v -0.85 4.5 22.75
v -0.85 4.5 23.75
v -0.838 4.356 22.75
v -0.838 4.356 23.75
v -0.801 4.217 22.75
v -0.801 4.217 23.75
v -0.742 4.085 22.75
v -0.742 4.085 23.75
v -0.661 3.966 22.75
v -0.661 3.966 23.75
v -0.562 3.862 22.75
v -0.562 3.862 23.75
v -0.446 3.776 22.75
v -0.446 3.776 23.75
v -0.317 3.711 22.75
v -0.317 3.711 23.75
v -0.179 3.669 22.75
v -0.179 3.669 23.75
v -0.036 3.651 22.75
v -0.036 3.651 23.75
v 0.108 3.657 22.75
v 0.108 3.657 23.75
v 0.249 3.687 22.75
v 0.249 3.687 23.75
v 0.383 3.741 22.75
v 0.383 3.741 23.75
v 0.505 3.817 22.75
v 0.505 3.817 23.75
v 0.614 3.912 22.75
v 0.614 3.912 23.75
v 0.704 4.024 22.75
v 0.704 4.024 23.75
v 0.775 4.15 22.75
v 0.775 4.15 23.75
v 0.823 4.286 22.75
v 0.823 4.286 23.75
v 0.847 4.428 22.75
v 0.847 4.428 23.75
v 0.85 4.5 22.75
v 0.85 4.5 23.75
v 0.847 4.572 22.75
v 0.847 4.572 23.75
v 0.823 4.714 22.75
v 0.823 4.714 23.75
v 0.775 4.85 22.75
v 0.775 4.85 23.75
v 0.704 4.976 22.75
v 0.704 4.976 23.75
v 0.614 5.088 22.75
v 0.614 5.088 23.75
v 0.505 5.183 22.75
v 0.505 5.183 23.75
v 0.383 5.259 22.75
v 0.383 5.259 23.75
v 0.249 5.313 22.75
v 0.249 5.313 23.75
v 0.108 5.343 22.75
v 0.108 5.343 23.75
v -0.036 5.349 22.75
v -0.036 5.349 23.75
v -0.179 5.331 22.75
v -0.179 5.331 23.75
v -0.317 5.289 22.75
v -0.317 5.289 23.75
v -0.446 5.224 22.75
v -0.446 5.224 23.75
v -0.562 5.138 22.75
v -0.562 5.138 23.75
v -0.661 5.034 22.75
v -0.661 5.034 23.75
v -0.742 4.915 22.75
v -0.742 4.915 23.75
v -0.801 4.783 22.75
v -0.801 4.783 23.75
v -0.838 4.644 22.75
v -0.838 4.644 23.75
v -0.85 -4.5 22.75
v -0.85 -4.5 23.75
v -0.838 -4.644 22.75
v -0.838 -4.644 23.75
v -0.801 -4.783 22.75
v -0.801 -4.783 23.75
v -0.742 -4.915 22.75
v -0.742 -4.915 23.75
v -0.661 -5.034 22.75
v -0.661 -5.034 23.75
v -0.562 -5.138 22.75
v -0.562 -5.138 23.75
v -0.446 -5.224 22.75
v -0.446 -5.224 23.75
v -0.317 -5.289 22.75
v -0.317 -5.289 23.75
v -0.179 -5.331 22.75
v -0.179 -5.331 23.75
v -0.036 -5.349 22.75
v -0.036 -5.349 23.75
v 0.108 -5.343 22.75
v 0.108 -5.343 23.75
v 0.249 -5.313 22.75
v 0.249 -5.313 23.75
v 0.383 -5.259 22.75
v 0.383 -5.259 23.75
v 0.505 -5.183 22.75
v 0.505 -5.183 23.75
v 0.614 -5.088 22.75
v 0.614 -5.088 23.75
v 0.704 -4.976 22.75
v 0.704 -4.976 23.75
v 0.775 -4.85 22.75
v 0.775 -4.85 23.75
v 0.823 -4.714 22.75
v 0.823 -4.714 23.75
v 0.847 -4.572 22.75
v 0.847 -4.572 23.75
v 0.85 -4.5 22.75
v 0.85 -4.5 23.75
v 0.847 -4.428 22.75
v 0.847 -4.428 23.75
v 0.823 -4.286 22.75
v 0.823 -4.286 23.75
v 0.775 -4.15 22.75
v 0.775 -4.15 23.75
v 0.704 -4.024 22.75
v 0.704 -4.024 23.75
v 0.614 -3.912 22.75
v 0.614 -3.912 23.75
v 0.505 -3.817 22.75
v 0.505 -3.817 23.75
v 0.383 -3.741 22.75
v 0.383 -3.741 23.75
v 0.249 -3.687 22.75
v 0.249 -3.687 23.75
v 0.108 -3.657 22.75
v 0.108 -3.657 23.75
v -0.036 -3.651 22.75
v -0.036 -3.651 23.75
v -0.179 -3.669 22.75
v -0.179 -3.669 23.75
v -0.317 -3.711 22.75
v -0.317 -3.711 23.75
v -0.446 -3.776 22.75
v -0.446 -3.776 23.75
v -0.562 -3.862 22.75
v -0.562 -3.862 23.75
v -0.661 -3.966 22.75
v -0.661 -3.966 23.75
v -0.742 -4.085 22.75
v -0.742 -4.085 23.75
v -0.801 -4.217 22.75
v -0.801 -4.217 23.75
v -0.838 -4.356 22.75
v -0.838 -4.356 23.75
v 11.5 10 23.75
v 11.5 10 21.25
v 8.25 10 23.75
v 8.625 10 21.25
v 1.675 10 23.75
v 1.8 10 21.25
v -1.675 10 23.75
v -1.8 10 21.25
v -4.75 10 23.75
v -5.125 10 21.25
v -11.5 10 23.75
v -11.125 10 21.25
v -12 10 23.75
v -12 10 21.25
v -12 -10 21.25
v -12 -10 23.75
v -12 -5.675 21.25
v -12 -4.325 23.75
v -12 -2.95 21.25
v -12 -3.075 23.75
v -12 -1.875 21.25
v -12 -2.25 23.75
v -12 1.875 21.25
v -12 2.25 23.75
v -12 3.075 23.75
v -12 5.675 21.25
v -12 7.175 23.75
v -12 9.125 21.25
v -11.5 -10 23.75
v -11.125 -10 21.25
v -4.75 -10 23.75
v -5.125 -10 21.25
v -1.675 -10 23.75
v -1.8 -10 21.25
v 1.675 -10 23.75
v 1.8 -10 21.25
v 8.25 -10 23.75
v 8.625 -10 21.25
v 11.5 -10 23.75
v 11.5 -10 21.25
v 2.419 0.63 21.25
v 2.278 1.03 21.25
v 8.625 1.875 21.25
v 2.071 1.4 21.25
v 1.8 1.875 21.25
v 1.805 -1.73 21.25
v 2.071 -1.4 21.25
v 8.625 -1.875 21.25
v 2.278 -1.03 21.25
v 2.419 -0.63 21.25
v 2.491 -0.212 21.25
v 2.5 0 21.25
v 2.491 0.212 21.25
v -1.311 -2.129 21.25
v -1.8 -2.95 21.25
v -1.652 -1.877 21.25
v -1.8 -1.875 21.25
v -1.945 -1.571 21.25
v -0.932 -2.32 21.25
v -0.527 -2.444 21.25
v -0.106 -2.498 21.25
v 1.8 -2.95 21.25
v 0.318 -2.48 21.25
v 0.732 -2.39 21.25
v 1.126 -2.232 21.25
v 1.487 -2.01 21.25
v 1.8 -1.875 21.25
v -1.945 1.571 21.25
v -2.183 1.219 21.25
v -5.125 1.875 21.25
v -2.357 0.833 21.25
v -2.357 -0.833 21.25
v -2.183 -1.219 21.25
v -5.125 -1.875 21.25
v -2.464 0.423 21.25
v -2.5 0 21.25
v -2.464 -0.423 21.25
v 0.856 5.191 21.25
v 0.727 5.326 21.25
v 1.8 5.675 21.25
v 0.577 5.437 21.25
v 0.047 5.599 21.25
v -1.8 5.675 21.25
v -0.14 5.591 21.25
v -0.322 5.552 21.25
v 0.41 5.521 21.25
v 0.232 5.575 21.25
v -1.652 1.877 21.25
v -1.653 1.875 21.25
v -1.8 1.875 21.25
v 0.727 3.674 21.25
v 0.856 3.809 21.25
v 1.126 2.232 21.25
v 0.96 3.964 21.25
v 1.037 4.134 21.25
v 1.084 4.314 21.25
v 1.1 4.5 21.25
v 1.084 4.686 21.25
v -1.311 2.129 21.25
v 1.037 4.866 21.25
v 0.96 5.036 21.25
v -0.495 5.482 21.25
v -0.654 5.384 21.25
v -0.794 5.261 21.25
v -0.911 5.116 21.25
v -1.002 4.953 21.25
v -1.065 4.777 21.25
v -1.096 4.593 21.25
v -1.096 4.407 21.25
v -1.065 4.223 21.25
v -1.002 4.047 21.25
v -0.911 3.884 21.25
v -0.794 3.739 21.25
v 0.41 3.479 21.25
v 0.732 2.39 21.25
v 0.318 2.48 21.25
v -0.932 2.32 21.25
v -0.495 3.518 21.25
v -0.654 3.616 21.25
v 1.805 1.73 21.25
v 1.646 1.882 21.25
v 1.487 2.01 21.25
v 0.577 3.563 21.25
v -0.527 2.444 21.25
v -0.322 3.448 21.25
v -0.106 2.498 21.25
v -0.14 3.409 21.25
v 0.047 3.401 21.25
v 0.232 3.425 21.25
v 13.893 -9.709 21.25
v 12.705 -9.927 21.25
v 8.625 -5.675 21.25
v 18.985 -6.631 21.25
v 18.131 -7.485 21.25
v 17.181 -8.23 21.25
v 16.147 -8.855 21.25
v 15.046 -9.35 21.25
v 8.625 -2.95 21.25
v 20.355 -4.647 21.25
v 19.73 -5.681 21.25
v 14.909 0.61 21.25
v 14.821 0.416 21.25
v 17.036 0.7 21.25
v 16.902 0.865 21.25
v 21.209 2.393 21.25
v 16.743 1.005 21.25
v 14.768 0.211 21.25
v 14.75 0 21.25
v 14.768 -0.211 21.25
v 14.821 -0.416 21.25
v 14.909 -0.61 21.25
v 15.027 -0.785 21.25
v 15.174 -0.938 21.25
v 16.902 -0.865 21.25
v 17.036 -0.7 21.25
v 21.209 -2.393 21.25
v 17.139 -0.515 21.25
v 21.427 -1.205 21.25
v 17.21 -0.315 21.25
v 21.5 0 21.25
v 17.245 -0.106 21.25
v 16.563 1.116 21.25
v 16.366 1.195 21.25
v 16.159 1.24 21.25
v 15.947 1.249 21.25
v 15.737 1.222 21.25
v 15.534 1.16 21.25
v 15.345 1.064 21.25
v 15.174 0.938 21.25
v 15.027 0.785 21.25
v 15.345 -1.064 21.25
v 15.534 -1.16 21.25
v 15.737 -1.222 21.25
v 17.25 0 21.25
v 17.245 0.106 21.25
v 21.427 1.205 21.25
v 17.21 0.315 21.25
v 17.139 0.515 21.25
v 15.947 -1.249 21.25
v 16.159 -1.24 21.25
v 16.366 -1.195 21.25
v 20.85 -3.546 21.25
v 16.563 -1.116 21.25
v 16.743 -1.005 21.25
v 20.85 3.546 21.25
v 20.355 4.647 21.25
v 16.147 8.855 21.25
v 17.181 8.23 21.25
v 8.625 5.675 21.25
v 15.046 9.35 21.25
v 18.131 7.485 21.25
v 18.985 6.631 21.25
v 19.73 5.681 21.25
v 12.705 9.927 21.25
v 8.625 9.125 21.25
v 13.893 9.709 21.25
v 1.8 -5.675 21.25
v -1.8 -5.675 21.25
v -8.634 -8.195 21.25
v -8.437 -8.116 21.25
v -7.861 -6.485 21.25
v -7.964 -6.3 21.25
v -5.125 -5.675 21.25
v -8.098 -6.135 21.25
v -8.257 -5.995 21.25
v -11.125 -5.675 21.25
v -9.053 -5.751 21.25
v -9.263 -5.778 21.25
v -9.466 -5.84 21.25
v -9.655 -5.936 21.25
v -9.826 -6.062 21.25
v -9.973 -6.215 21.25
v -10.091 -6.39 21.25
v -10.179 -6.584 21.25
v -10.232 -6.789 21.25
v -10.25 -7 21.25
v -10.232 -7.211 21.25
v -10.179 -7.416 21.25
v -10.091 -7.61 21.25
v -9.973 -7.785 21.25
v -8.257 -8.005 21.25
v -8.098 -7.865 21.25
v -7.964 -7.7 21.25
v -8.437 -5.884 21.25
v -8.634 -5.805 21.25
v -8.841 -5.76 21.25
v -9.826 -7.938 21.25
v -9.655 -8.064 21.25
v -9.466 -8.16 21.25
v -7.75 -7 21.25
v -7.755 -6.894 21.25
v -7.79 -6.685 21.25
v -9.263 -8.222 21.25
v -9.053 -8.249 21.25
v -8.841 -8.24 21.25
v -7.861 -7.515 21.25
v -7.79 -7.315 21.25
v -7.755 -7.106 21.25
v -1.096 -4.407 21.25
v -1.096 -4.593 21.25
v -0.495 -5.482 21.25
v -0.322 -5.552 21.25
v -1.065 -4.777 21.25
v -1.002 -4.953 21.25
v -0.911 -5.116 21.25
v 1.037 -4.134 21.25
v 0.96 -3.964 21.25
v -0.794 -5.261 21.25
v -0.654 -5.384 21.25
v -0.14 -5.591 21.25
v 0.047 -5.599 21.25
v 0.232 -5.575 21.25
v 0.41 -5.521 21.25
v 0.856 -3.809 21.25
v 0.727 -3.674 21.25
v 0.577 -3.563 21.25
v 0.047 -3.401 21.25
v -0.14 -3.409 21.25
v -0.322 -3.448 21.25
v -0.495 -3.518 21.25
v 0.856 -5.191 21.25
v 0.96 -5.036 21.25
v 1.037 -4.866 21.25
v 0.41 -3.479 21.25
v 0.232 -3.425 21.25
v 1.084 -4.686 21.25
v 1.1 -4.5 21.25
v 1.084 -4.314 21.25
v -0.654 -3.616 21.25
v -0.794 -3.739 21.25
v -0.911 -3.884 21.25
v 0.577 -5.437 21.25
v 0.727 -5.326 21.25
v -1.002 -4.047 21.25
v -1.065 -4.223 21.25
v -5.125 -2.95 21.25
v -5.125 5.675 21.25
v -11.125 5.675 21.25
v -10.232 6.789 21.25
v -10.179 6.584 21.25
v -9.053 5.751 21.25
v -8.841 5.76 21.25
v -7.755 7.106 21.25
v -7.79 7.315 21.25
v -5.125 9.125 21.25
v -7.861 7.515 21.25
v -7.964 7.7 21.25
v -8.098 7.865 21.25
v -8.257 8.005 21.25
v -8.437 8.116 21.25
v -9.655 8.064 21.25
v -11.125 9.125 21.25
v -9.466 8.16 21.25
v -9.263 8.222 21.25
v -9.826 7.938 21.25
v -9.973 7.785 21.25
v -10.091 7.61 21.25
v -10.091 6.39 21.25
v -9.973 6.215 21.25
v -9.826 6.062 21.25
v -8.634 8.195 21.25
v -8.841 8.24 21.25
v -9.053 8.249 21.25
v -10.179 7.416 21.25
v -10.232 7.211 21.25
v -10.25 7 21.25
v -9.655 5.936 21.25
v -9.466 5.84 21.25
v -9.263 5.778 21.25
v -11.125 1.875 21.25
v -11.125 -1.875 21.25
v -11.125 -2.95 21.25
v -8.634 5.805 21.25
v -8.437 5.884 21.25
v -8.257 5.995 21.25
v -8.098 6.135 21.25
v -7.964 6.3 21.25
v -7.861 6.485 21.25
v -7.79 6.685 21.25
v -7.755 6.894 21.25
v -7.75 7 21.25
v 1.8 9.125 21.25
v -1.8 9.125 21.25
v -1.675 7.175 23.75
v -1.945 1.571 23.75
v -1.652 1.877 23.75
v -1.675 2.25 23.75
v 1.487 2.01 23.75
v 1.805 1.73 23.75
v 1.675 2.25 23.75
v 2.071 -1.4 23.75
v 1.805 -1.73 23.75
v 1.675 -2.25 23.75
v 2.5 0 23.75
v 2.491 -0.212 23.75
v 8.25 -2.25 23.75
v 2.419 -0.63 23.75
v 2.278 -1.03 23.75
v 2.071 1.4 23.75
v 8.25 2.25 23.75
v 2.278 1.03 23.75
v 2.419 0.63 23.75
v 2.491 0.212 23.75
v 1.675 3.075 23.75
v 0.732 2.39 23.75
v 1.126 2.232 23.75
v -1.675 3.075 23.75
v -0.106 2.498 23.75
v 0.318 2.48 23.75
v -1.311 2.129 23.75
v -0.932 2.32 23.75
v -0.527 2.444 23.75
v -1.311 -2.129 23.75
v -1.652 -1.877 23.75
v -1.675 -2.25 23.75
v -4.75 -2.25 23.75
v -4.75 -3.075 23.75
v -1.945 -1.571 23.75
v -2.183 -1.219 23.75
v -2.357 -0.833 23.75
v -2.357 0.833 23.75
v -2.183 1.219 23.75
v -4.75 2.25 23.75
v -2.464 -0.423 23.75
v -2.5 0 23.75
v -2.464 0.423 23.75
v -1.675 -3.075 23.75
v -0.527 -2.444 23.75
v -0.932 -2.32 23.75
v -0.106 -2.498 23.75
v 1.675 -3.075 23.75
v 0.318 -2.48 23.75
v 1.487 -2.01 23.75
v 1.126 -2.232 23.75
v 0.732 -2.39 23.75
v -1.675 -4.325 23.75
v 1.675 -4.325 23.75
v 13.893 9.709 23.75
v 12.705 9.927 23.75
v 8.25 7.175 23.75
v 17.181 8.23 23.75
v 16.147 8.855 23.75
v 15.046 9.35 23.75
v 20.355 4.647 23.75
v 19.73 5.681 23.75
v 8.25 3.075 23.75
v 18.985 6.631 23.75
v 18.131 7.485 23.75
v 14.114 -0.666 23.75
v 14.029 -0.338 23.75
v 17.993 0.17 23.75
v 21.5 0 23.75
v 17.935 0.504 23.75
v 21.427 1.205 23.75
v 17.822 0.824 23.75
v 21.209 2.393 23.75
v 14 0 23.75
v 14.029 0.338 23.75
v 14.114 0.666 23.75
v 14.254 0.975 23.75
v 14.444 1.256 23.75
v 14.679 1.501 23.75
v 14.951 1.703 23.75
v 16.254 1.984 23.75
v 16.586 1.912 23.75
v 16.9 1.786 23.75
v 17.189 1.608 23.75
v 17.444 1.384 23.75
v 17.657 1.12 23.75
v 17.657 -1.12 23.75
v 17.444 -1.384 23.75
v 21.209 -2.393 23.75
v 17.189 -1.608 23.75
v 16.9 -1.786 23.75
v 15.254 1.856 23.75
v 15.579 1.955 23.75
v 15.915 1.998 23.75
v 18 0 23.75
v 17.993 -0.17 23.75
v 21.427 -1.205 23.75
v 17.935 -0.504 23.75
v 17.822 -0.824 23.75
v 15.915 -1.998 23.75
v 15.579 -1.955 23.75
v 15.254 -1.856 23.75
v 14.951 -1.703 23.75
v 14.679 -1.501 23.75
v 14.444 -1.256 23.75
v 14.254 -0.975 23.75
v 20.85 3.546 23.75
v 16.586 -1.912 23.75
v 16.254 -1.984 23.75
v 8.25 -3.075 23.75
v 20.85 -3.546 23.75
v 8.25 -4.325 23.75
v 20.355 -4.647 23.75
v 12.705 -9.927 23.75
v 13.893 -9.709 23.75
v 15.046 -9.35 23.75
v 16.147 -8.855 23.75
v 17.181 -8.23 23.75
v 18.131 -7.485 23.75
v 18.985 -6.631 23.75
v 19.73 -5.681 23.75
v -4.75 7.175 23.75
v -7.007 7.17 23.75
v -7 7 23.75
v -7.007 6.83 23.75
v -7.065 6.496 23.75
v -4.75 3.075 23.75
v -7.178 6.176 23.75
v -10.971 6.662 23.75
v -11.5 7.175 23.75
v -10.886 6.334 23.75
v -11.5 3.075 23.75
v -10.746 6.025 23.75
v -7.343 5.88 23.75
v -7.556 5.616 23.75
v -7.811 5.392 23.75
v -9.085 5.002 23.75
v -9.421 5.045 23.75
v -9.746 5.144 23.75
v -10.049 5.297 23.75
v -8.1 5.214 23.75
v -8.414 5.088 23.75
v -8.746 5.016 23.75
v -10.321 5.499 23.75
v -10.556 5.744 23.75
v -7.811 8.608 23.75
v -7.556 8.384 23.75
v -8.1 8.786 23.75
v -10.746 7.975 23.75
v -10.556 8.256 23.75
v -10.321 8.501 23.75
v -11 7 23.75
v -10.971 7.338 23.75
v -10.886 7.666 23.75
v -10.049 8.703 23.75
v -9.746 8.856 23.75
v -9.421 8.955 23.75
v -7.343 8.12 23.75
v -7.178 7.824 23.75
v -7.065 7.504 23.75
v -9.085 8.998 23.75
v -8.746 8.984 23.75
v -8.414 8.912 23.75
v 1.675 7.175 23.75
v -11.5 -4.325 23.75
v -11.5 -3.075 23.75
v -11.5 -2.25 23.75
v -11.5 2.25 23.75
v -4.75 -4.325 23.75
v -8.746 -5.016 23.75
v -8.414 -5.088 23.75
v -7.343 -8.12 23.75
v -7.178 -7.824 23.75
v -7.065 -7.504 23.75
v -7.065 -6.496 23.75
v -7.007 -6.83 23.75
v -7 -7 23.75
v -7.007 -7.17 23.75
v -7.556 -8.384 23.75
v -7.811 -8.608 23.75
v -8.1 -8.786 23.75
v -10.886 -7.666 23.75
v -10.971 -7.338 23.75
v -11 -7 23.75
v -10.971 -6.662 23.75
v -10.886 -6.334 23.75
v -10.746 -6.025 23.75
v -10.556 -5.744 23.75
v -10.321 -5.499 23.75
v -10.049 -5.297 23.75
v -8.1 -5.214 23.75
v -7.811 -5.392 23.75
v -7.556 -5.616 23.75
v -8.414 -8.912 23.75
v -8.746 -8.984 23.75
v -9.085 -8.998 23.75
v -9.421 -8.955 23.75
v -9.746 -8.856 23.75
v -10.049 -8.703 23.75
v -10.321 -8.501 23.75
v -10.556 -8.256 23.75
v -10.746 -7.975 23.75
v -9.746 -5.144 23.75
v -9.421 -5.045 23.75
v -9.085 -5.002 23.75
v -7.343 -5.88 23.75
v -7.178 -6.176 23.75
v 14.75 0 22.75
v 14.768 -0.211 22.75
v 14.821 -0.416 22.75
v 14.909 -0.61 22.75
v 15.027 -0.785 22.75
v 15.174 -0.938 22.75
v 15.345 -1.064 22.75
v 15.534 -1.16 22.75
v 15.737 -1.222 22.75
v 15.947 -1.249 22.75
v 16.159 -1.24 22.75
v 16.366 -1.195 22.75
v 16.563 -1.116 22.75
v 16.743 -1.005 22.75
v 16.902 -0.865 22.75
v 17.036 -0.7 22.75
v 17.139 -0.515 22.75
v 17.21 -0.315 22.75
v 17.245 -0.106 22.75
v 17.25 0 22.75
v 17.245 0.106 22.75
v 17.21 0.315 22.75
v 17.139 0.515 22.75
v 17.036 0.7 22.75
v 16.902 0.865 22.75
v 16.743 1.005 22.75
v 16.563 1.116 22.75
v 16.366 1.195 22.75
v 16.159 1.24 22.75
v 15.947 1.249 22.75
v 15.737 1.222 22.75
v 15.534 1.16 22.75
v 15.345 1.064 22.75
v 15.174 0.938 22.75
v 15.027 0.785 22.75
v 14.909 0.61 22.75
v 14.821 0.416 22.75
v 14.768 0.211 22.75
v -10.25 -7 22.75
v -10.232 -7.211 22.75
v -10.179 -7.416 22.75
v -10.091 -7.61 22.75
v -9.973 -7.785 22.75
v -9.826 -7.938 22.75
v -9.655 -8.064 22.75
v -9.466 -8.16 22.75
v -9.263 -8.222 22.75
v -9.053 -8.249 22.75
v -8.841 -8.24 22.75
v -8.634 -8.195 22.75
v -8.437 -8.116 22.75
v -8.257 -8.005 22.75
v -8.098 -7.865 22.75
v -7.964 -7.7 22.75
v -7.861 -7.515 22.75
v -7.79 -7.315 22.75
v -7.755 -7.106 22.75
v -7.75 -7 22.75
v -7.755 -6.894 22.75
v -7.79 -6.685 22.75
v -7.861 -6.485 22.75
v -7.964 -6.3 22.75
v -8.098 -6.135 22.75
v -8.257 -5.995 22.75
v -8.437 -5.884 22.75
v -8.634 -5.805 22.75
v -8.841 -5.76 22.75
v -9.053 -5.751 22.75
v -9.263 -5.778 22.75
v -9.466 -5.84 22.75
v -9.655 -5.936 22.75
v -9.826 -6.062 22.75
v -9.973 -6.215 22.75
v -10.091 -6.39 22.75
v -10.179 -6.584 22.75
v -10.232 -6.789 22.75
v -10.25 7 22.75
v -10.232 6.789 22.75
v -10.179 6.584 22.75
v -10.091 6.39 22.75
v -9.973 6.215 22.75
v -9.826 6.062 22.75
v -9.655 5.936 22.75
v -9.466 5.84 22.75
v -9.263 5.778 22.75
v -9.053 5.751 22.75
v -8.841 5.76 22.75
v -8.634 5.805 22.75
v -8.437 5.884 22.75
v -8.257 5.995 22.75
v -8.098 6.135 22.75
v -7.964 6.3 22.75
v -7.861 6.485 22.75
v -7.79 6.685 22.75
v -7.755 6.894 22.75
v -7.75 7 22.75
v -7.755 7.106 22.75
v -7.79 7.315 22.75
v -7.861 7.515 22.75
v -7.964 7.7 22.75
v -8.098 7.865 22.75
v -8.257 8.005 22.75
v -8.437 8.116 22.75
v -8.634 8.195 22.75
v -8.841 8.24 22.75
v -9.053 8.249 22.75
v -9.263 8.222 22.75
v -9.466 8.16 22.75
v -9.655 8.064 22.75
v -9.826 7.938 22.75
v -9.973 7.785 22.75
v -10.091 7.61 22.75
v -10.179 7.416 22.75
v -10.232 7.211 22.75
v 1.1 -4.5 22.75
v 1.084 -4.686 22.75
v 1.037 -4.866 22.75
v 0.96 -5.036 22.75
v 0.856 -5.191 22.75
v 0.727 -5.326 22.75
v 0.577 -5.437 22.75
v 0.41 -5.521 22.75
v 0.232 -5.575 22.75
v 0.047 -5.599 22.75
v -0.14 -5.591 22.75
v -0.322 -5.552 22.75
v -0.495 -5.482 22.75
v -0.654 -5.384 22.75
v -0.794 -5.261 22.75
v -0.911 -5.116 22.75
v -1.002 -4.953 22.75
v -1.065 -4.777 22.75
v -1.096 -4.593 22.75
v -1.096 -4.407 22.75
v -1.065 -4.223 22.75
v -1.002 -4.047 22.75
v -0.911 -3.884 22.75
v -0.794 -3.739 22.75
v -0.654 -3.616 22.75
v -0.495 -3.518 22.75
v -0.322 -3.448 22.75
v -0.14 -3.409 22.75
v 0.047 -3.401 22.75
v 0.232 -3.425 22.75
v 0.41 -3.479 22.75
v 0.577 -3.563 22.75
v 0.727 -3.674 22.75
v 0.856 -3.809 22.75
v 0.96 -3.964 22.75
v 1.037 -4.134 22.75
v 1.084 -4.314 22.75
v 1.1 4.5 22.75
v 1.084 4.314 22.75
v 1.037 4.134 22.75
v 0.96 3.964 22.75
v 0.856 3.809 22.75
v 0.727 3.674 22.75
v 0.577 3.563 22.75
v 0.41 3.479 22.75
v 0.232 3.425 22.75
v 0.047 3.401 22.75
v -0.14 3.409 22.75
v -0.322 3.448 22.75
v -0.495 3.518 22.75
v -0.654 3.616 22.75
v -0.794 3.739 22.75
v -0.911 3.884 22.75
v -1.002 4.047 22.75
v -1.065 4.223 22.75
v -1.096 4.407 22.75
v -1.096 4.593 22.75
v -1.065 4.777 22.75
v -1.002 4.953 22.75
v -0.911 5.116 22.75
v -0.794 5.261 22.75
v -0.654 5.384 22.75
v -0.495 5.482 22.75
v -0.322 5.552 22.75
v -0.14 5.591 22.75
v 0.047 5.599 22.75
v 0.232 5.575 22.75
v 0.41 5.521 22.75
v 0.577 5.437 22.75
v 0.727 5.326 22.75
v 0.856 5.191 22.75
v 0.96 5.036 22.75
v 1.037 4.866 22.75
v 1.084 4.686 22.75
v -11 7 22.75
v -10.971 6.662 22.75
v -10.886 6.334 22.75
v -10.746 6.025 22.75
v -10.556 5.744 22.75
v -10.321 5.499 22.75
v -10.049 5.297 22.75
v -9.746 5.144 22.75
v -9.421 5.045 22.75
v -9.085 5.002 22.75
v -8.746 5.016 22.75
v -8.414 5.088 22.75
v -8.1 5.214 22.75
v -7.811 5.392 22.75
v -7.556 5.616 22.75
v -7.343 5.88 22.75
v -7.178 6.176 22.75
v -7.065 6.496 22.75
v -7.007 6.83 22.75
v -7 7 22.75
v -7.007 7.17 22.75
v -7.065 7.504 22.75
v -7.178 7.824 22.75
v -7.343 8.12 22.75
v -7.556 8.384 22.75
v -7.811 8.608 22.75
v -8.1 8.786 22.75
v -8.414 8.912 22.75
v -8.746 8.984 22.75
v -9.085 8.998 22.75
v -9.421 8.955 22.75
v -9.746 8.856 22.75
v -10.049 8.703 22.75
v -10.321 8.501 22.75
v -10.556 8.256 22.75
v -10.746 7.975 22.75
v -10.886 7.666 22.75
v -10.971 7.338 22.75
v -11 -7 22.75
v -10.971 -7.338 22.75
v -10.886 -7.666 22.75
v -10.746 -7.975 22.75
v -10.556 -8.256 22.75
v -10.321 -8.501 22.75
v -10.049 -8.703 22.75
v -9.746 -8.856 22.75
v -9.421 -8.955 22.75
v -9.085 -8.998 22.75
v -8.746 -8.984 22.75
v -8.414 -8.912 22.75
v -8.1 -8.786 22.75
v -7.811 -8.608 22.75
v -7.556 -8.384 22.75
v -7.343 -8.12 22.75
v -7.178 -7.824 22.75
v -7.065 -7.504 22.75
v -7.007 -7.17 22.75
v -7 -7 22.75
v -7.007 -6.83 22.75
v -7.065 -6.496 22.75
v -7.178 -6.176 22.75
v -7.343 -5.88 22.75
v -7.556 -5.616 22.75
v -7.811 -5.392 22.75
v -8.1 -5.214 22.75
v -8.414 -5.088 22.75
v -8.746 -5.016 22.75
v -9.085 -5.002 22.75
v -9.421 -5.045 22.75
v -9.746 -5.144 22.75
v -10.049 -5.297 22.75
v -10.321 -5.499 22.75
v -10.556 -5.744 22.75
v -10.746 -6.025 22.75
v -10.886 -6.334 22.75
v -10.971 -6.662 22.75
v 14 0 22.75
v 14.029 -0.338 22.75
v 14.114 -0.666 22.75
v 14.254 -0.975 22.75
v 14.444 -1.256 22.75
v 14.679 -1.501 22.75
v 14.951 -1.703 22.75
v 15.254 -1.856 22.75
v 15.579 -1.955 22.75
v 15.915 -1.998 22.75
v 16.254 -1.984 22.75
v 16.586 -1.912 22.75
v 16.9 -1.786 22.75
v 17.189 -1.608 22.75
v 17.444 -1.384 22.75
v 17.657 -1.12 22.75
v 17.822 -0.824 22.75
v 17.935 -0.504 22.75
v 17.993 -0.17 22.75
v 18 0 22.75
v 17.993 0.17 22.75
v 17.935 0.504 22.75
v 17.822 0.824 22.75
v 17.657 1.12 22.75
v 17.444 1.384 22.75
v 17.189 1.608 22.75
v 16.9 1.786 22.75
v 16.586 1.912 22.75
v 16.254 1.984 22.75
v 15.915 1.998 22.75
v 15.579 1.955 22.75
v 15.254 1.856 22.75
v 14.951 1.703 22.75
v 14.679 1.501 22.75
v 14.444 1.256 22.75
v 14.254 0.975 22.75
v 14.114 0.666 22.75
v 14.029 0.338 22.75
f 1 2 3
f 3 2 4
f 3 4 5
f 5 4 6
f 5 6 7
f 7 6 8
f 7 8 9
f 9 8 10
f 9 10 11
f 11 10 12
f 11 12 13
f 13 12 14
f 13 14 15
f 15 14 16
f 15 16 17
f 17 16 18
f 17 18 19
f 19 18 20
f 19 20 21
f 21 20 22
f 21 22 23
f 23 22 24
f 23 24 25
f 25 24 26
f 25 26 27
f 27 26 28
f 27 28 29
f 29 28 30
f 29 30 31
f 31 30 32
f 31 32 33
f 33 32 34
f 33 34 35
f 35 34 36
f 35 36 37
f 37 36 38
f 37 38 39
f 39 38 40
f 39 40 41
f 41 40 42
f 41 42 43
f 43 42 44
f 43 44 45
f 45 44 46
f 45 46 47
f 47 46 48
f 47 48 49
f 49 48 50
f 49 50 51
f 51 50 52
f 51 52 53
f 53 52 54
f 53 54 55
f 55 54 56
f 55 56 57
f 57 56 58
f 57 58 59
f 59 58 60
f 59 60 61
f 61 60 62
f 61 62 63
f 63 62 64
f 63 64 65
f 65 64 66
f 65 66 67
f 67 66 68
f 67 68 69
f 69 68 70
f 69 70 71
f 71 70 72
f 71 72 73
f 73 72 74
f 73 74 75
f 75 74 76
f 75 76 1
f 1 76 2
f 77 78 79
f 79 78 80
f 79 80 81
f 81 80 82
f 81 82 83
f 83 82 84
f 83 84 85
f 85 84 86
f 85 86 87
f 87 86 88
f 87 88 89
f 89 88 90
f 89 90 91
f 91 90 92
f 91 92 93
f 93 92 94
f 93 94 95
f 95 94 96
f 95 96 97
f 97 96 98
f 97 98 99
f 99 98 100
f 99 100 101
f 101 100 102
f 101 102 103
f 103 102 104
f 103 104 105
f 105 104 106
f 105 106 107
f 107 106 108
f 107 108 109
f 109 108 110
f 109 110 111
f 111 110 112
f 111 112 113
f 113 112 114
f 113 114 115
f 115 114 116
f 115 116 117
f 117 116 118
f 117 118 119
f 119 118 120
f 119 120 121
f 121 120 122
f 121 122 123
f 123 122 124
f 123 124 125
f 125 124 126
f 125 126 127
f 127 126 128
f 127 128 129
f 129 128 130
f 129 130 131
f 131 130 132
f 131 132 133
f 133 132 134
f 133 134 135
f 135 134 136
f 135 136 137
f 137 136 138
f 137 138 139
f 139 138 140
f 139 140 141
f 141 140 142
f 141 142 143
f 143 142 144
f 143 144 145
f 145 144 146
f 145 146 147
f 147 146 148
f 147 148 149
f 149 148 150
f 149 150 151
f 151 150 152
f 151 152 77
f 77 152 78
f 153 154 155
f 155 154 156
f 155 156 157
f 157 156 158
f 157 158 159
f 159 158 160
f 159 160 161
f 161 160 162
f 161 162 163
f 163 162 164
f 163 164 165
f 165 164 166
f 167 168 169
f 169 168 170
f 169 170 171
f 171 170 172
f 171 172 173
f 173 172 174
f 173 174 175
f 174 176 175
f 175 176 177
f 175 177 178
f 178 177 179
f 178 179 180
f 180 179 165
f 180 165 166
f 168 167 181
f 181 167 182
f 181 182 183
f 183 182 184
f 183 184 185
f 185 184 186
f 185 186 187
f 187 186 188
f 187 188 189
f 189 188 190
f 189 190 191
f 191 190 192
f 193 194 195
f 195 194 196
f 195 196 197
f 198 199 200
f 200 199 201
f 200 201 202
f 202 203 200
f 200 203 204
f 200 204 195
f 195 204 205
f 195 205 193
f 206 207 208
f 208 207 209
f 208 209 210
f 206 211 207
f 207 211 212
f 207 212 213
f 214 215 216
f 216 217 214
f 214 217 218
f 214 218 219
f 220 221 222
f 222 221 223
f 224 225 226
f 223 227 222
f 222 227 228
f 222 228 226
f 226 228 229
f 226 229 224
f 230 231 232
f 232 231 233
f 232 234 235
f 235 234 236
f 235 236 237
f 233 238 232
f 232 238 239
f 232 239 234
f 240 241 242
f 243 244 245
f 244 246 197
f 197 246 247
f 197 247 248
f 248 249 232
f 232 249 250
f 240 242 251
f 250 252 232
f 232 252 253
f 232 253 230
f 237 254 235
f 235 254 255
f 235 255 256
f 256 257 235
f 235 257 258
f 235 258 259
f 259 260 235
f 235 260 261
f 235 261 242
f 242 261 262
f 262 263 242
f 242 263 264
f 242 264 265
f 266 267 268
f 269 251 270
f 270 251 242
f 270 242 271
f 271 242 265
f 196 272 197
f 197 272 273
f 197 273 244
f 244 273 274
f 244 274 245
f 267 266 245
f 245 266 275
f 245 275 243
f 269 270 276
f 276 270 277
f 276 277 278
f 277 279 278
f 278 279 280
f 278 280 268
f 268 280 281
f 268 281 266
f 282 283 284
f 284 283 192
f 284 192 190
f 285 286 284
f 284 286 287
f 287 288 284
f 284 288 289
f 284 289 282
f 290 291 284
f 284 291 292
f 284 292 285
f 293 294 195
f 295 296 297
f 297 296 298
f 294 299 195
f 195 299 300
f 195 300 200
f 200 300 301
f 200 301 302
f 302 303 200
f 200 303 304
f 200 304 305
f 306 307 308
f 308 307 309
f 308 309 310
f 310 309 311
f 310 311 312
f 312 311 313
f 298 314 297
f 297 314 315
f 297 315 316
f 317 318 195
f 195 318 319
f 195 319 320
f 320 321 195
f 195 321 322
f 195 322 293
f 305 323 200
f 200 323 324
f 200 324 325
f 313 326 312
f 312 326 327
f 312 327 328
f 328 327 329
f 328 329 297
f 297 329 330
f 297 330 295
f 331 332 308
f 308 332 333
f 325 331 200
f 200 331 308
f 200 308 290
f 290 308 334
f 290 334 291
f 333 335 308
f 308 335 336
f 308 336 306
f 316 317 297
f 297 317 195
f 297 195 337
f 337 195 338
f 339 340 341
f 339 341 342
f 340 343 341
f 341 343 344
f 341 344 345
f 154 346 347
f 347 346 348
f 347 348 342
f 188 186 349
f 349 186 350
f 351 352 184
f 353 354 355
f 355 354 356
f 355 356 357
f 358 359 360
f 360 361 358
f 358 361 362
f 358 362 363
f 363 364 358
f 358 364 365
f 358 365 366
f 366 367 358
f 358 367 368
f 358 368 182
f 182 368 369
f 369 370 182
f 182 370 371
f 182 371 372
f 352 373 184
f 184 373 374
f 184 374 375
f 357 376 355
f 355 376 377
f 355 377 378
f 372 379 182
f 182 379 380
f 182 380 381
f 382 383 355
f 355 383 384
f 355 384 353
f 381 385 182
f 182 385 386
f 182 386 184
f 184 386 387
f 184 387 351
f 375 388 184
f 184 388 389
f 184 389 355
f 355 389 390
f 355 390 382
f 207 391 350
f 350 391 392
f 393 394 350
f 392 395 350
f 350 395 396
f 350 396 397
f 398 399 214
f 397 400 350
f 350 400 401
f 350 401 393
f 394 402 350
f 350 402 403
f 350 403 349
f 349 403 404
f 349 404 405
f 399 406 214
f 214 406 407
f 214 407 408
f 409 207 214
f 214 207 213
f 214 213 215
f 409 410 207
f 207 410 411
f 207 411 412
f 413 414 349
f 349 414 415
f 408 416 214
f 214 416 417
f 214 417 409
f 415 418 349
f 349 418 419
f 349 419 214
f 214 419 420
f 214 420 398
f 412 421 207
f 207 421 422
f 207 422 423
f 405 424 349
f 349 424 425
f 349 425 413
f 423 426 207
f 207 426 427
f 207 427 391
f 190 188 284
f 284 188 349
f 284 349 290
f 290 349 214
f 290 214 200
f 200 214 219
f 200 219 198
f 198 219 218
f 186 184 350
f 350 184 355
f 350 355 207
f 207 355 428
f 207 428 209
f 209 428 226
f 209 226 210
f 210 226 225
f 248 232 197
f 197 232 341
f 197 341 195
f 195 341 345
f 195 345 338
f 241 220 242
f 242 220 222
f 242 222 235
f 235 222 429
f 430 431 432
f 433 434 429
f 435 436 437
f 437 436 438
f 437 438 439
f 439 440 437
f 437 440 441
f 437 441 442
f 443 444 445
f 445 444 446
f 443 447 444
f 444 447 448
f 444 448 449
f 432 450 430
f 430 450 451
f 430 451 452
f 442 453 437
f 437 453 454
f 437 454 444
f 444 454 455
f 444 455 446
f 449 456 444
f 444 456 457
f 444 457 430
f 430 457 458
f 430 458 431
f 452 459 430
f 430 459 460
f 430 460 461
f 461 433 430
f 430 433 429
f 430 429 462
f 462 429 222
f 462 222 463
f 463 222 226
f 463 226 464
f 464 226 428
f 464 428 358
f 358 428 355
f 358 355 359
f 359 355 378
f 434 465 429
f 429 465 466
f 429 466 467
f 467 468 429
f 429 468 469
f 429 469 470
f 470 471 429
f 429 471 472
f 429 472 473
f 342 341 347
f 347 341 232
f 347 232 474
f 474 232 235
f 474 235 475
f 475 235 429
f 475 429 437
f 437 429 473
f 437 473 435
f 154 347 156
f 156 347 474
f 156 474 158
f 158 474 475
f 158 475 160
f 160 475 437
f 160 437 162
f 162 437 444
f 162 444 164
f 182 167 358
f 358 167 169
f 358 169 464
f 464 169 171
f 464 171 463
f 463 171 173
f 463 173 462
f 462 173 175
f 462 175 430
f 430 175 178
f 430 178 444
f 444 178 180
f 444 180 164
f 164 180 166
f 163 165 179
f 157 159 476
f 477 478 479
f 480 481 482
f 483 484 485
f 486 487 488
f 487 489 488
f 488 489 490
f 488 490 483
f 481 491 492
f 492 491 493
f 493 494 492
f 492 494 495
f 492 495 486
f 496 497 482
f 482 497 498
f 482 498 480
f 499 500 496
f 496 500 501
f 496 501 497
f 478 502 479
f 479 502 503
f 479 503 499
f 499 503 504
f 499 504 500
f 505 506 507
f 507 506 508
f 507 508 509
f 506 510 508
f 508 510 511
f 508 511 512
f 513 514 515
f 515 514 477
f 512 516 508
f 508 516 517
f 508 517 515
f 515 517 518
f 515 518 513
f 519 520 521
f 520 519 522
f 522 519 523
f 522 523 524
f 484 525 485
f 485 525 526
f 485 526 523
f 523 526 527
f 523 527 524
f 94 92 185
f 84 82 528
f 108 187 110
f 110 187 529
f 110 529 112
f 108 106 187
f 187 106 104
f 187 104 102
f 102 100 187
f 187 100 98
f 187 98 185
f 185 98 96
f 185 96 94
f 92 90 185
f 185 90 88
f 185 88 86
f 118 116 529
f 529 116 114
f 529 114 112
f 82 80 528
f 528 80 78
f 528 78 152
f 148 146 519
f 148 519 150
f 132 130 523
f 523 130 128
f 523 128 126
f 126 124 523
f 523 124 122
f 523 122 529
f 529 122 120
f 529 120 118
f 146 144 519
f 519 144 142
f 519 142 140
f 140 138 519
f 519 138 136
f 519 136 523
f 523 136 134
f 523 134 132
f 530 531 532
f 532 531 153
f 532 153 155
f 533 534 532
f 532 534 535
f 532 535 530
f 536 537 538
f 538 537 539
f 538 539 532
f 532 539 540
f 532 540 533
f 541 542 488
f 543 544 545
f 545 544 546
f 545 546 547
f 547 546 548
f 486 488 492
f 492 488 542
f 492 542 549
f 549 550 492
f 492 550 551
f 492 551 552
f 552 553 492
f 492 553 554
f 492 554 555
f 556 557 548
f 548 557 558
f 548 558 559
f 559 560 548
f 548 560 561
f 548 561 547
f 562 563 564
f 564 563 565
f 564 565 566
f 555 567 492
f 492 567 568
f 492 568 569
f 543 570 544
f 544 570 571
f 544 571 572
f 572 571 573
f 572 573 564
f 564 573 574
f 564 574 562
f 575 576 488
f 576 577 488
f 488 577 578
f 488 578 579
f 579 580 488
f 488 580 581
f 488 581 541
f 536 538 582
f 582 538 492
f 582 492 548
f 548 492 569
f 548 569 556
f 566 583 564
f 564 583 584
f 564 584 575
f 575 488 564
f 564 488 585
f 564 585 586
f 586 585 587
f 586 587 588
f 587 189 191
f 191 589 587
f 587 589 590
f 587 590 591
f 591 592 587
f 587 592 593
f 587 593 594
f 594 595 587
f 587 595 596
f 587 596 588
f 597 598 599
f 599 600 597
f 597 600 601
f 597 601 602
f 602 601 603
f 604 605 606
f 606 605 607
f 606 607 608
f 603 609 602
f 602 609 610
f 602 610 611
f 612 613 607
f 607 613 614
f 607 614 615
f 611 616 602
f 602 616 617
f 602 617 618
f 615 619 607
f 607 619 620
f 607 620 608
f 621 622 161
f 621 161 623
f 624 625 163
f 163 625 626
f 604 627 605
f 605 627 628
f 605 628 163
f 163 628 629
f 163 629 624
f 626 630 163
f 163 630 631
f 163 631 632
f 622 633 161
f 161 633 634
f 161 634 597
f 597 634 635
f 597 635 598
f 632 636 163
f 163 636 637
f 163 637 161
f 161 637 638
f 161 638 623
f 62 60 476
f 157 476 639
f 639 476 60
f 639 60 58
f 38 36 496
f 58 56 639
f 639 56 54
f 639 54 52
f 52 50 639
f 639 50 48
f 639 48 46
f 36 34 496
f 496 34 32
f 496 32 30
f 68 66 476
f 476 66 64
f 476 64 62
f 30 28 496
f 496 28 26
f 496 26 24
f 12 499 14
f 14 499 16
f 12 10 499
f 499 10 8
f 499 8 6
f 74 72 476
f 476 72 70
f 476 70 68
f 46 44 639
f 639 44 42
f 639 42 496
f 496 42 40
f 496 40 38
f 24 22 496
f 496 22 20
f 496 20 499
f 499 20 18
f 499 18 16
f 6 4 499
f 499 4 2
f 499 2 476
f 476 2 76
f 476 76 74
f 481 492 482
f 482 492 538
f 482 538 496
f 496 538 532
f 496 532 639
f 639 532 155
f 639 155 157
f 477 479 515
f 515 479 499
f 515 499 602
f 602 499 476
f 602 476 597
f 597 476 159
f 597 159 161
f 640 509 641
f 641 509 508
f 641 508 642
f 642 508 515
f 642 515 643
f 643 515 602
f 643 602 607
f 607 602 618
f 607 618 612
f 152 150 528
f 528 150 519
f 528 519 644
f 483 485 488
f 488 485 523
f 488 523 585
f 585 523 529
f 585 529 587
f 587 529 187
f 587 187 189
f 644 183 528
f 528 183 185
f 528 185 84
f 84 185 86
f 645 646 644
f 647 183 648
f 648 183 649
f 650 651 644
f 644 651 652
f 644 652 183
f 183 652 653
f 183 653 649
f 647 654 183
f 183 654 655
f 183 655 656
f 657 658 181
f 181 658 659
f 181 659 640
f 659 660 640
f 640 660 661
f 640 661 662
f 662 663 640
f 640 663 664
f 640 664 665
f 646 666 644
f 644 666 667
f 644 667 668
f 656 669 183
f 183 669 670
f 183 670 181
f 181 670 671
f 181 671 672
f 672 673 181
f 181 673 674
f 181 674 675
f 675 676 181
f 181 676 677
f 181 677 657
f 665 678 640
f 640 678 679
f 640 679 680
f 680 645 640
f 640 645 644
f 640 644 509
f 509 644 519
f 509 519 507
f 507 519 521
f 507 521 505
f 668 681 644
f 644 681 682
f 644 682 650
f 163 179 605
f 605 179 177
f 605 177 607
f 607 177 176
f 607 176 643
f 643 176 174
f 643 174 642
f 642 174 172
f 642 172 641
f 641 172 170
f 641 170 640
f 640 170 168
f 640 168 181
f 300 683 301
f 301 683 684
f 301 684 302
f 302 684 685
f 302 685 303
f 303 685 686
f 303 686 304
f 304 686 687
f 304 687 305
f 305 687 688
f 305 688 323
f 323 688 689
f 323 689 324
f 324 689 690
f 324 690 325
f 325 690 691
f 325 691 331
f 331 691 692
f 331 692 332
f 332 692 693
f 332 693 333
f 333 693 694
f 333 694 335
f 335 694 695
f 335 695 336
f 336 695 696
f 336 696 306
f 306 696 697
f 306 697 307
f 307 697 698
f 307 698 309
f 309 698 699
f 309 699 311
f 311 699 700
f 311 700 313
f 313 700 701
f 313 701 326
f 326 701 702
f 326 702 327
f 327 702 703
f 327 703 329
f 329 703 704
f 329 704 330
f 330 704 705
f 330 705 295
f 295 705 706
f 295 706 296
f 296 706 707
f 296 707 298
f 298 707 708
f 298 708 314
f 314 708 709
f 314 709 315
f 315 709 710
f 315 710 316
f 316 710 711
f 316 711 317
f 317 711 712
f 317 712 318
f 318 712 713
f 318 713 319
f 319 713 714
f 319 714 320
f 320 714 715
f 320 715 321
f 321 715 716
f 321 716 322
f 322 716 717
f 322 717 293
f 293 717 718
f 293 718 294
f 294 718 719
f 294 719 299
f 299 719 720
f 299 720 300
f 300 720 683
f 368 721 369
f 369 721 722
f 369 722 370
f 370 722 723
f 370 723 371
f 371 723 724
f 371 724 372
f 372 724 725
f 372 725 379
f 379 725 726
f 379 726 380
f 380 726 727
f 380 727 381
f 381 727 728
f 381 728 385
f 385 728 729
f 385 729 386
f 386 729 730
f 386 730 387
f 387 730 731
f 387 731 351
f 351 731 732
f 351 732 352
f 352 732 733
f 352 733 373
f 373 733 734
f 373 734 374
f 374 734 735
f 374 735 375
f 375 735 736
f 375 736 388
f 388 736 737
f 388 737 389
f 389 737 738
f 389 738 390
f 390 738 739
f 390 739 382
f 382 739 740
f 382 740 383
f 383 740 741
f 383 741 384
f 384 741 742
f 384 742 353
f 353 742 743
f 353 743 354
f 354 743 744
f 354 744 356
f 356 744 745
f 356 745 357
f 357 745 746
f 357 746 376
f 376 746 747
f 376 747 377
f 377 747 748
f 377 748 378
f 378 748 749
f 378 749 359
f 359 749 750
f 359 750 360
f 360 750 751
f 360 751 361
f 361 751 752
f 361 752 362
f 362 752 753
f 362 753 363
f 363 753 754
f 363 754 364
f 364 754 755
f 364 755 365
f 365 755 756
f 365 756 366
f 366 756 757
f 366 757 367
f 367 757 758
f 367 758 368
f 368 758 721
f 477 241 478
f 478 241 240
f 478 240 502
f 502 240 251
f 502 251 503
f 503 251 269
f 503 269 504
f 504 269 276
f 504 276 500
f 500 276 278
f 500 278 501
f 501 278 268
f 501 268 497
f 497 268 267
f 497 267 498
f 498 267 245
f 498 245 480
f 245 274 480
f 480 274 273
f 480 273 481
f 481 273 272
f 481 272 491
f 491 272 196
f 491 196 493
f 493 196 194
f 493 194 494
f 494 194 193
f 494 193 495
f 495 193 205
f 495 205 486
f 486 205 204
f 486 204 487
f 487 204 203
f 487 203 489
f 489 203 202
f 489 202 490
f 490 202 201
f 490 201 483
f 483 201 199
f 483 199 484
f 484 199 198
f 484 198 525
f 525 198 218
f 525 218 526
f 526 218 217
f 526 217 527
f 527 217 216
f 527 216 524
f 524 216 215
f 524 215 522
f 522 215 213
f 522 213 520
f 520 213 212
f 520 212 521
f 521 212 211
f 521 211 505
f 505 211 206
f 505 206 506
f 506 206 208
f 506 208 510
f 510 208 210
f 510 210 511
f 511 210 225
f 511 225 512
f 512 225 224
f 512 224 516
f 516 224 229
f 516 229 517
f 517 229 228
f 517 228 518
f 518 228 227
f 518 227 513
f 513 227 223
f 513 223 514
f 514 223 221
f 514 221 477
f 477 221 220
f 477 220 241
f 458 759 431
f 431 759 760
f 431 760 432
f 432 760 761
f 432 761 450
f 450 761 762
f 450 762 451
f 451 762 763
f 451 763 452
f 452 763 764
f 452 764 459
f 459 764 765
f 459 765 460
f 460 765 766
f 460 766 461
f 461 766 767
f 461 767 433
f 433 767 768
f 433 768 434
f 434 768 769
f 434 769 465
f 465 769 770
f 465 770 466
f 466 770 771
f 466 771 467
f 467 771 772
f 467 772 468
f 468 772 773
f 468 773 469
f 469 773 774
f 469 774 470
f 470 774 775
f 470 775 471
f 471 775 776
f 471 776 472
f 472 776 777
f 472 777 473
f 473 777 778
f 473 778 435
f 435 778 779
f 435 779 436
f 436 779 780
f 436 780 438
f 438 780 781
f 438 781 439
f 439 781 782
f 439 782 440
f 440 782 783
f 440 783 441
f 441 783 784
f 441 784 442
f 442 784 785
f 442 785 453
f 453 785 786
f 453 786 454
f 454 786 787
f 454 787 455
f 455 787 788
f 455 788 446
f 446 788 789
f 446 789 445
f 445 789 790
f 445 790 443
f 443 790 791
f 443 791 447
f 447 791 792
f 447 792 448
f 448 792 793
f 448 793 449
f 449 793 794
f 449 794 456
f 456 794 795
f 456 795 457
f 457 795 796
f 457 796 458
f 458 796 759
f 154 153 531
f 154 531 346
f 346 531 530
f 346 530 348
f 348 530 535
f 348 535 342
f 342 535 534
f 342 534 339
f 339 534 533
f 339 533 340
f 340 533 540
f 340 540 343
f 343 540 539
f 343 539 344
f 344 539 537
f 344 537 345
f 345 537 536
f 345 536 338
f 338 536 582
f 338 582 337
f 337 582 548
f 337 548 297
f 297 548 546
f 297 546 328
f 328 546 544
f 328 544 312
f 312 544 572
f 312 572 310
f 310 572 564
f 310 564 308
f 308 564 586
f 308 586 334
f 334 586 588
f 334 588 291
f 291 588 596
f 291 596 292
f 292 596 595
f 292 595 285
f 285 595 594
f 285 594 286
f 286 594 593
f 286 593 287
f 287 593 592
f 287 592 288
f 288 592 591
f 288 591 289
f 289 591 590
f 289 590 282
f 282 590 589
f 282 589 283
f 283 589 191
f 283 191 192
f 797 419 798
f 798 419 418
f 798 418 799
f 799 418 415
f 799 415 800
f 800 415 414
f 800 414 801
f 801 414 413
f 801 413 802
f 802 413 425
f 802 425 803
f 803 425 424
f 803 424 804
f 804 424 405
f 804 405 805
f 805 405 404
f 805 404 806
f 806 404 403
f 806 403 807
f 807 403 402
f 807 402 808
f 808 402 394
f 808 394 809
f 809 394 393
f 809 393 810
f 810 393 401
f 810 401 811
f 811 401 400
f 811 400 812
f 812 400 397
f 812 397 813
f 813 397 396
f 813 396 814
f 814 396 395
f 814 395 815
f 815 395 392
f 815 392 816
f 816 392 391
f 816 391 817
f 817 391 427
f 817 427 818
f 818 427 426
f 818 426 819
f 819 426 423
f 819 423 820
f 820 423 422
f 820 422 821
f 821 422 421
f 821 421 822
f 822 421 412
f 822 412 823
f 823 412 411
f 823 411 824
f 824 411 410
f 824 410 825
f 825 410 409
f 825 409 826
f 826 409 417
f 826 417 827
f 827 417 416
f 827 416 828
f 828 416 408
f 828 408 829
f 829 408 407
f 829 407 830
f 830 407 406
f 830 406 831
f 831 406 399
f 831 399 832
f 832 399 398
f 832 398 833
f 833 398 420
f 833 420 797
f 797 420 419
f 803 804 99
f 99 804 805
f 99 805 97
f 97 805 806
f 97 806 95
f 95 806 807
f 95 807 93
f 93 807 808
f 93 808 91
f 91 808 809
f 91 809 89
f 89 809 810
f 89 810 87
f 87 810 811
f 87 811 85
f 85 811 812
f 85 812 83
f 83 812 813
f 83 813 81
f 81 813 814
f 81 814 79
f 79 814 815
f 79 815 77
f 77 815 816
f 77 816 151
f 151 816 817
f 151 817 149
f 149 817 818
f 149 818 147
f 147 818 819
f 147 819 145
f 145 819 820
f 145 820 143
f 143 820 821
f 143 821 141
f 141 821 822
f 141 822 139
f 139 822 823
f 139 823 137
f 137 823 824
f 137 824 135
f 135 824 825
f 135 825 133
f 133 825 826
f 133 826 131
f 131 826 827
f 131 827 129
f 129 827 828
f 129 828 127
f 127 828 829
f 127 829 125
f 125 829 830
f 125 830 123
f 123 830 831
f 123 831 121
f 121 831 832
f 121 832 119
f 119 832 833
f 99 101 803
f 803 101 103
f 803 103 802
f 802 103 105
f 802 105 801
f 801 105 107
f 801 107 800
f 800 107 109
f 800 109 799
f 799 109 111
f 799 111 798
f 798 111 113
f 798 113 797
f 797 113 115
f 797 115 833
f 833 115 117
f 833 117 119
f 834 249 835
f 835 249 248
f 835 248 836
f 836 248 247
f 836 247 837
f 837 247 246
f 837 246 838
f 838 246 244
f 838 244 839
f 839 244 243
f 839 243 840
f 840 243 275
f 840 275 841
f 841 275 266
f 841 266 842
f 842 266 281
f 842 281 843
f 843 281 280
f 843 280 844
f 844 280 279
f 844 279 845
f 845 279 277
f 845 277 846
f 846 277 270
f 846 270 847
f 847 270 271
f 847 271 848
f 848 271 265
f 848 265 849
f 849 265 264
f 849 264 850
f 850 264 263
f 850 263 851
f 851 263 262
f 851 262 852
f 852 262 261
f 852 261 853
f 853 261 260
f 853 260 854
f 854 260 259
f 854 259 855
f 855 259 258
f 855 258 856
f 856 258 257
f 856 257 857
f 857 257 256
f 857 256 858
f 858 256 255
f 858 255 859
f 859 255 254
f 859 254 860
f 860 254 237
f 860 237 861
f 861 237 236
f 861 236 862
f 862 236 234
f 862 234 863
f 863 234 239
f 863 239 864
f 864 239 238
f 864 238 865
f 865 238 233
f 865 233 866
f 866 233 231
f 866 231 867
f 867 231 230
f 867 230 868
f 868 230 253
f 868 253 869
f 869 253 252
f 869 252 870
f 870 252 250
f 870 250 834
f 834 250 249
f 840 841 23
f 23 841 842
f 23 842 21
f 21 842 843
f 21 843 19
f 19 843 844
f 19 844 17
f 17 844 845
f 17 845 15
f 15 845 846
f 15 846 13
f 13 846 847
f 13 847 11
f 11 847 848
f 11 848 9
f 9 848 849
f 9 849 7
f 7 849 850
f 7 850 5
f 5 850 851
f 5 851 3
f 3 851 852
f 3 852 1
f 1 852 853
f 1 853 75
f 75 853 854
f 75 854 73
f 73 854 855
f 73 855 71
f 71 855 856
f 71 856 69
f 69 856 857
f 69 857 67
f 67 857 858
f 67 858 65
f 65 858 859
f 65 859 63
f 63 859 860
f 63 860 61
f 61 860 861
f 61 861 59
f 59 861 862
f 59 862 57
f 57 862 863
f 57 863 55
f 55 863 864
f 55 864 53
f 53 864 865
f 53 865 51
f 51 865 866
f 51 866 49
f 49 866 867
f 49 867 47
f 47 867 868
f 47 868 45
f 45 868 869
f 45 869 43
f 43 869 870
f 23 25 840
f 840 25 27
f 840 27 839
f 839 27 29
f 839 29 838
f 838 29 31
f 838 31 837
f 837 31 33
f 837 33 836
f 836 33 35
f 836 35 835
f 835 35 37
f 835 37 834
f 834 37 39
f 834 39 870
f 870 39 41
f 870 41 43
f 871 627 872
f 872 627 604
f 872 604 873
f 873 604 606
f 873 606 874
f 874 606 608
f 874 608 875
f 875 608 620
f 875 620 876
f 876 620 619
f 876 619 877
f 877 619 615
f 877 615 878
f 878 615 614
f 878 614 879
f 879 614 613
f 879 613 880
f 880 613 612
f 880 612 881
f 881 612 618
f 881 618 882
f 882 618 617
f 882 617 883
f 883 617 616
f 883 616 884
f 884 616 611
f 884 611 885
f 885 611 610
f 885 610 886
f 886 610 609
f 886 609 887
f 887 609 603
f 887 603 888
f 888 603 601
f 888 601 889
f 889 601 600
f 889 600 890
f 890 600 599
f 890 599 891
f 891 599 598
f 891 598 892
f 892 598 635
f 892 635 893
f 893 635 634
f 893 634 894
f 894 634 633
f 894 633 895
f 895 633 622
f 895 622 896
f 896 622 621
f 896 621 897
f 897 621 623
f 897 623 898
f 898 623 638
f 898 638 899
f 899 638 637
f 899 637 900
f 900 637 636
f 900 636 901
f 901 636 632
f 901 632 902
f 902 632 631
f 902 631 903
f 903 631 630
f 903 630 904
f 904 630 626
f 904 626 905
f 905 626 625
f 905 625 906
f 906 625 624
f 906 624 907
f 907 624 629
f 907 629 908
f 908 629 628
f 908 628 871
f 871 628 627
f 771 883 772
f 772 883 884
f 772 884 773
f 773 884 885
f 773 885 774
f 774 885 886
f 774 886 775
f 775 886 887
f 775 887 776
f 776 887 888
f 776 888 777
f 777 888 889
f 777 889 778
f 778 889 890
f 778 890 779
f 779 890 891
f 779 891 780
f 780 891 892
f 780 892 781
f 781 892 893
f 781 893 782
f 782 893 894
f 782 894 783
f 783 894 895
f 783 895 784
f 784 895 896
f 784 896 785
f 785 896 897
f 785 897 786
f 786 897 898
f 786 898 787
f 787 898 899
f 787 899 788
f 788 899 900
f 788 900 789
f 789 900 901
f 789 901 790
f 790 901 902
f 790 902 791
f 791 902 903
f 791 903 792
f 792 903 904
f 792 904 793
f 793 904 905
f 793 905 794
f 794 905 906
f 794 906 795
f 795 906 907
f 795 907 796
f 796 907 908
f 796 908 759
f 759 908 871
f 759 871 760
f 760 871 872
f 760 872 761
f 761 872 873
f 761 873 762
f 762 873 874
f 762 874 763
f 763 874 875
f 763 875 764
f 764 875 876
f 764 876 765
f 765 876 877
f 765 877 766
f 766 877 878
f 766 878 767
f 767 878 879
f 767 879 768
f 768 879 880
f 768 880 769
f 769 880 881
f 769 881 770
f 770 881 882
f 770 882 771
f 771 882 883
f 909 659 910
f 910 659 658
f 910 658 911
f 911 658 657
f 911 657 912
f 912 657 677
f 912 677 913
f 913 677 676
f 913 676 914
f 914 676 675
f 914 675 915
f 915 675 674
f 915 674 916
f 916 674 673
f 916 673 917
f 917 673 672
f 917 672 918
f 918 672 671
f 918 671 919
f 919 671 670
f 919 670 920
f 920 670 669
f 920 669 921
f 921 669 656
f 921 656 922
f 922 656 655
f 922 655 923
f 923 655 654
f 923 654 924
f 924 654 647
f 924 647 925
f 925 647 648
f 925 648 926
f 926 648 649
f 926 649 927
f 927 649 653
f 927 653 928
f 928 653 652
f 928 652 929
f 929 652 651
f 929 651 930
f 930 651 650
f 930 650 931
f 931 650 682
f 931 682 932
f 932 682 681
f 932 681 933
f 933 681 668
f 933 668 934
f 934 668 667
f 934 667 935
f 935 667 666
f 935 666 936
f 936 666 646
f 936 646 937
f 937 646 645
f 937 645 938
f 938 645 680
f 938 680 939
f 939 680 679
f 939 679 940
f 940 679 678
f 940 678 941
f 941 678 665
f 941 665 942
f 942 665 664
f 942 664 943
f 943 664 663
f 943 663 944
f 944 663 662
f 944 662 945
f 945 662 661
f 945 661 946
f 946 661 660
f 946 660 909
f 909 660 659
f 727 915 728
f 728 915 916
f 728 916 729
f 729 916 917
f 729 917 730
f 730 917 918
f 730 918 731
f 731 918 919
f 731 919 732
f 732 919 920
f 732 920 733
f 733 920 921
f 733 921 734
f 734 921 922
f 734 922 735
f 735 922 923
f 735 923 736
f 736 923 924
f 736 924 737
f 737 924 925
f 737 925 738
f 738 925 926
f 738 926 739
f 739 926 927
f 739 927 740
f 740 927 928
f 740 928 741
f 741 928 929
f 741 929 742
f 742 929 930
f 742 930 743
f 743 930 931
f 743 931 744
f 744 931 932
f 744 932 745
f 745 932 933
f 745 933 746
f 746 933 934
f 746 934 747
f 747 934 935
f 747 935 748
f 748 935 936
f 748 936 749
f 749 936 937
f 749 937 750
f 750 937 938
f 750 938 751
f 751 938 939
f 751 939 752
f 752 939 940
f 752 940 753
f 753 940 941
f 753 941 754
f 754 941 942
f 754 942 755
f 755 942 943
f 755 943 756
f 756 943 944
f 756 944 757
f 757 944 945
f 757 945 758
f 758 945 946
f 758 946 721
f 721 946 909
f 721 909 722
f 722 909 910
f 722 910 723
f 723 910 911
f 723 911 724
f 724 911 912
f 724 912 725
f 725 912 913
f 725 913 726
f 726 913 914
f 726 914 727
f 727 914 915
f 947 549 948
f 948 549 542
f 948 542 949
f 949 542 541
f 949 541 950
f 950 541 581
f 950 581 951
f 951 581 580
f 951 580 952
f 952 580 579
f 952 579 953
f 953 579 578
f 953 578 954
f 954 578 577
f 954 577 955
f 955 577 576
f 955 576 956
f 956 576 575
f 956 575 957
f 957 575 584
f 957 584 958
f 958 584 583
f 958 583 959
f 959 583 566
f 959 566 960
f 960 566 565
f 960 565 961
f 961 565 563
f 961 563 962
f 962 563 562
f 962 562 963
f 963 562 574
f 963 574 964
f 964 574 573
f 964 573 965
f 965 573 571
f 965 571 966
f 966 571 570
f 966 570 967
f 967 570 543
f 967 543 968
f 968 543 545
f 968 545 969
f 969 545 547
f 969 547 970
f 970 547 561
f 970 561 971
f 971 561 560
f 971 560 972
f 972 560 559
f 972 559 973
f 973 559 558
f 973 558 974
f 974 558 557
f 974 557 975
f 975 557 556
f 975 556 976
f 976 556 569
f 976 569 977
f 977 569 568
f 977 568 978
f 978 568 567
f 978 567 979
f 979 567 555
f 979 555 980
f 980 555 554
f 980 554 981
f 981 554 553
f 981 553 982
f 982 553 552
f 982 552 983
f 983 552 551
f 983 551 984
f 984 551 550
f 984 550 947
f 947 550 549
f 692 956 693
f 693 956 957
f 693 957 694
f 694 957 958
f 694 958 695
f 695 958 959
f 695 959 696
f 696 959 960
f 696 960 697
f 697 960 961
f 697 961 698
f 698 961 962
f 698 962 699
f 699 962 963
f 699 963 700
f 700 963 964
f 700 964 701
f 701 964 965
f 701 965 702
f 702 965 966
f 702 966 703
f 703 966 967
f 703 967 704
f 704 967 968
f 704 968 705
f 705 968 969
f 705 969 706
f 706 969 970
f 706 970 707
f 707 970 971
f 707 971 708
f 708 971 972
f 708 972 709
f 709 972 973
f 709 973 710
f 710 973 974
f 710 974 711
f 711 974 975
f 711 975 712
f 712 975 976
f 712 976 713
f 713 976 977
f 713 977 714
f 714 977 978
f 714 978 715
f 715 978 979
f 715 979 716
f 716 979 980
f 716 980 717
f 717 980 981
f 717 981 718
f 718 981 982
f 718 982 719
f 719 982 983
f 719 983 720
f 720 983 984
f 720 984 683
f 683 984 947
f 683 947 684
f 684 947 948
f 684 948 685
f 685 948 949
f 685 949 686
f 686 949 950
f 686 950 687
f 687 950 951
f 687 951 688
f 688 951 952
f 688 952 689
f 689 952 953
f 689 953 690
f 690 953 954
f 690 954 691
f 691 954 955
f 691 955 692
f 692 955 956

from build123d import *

# Parameters (mm, degrees)
SKETCH_1_R          = 2.5
SKETCH_1_R_2        = 0.85
SKETCH_1_R_3        = 1.25
EXTRUDE_1_DEPTH     = 1.25
CUT_EXTRUDE_START   = 1.25
SKETCH_1_4_R        = 1.1
CUT_EXTRUDE_1_DEPTH = 1.5
CUT_EXTRUDE_START_2 = -1.25
SKETCH_1_5_R        = 2
CUT_EXTRUDE_3_DEPTH = 1
SKETCH_2_W          = 43.696581843
SKETCH_2_H          = 27.281666247
CUT_EXTRUDE_4_DEPTH = 27.804850307


with BuildPart() as part:
    # 草图1 → 凸台-拉伸1 (new, symmetric)
    with BuildSketch(Plane.XY):
        with BuildLine():
            Line((11.5, 10), (-12, 10))
            Line((-12, 10), (-12, -10))
            Line((-12, -10), (11.5, -10))
            ThreePointArc((11.5, -10), (21.5, 0), (11.5, 10))
        make_face()
        Circle(SKETCH_1_R, mode=Mode.SUBTRACT)
        with Locations((0, 4.5)):
            Circle(SKETCH_1_R_2, mode=Mode.SUBTRACT)
        with Locations((0, -4.5)):
            Circle(SKETCH_1_R_2, mode=Mode.SUBTRACT)
        with Locations((-9, 7)):
            Circle(SKETCH_1_R_3, mode=Mode.SUBTRACT)
        with Locations((-9, -7)):
            Circle(SKETCH_1_R_3, mode=Mode.SUBTRACT)
        with Locations((16, 0)):
            Circle(SKETCH_1_R_3, mode=Mode.SUBTRACT)
    extrude(amount=EXTRUDE_1_DEPTH, both=True)

    # 草图1<4> → 切除-拉伸1 (cut)
    with BuildSketch(Plane.XY.offset(CUT_EXTRUDE_START)):
        with Locations((0, 4.5)):
            Circle(SKETCH_1_4_R)
        with Locations((0, -4.5)):
            Circle(SKETCH_1_4_R)
    extrude(amount=-CUT_EXTRUDE_1_DEPTH, mode=Mode.SUBTRACT)

    # 草图1<5> → 切除-拉伸3 (cut)
    with BuildSketch(Plane.XY.offset(CUT_EXTRUDE_START_2)):
        with Locations((-9, 7)):
            Circle(SKETCH_1_5_R)
        with Locations((-9, -7)):
            Circle(SKETCH_1_5_R)
        with Locations((16, 0)):
            Circle(SKETCH_1_5_R)
    extrude(amount=CUT_EXTRUDE_3_DEPTH, mode=Mode.SUBTRACT)


with BuildPart() as body_2:
    # 镜向1: mirrored copy
    add(part.part.mirror(Plane.XY.offset(11.25)))


with BuildPart() as part_1:
    add(part.part)

    # 草图2 → 切除-拉伸4 (cut, through all)
    with BuildSketch(Plane.XY.offset(11.25)):
        with Locations((2.339417989, -1.05223818)):
            Rectangle(SKETCH_2_W, SKETCH_2_H)
    extrude(amount=-CUT_EXTRUDE_4_DEPTH, mode=Mode.SUBTRACT)


solid = body_2.part
